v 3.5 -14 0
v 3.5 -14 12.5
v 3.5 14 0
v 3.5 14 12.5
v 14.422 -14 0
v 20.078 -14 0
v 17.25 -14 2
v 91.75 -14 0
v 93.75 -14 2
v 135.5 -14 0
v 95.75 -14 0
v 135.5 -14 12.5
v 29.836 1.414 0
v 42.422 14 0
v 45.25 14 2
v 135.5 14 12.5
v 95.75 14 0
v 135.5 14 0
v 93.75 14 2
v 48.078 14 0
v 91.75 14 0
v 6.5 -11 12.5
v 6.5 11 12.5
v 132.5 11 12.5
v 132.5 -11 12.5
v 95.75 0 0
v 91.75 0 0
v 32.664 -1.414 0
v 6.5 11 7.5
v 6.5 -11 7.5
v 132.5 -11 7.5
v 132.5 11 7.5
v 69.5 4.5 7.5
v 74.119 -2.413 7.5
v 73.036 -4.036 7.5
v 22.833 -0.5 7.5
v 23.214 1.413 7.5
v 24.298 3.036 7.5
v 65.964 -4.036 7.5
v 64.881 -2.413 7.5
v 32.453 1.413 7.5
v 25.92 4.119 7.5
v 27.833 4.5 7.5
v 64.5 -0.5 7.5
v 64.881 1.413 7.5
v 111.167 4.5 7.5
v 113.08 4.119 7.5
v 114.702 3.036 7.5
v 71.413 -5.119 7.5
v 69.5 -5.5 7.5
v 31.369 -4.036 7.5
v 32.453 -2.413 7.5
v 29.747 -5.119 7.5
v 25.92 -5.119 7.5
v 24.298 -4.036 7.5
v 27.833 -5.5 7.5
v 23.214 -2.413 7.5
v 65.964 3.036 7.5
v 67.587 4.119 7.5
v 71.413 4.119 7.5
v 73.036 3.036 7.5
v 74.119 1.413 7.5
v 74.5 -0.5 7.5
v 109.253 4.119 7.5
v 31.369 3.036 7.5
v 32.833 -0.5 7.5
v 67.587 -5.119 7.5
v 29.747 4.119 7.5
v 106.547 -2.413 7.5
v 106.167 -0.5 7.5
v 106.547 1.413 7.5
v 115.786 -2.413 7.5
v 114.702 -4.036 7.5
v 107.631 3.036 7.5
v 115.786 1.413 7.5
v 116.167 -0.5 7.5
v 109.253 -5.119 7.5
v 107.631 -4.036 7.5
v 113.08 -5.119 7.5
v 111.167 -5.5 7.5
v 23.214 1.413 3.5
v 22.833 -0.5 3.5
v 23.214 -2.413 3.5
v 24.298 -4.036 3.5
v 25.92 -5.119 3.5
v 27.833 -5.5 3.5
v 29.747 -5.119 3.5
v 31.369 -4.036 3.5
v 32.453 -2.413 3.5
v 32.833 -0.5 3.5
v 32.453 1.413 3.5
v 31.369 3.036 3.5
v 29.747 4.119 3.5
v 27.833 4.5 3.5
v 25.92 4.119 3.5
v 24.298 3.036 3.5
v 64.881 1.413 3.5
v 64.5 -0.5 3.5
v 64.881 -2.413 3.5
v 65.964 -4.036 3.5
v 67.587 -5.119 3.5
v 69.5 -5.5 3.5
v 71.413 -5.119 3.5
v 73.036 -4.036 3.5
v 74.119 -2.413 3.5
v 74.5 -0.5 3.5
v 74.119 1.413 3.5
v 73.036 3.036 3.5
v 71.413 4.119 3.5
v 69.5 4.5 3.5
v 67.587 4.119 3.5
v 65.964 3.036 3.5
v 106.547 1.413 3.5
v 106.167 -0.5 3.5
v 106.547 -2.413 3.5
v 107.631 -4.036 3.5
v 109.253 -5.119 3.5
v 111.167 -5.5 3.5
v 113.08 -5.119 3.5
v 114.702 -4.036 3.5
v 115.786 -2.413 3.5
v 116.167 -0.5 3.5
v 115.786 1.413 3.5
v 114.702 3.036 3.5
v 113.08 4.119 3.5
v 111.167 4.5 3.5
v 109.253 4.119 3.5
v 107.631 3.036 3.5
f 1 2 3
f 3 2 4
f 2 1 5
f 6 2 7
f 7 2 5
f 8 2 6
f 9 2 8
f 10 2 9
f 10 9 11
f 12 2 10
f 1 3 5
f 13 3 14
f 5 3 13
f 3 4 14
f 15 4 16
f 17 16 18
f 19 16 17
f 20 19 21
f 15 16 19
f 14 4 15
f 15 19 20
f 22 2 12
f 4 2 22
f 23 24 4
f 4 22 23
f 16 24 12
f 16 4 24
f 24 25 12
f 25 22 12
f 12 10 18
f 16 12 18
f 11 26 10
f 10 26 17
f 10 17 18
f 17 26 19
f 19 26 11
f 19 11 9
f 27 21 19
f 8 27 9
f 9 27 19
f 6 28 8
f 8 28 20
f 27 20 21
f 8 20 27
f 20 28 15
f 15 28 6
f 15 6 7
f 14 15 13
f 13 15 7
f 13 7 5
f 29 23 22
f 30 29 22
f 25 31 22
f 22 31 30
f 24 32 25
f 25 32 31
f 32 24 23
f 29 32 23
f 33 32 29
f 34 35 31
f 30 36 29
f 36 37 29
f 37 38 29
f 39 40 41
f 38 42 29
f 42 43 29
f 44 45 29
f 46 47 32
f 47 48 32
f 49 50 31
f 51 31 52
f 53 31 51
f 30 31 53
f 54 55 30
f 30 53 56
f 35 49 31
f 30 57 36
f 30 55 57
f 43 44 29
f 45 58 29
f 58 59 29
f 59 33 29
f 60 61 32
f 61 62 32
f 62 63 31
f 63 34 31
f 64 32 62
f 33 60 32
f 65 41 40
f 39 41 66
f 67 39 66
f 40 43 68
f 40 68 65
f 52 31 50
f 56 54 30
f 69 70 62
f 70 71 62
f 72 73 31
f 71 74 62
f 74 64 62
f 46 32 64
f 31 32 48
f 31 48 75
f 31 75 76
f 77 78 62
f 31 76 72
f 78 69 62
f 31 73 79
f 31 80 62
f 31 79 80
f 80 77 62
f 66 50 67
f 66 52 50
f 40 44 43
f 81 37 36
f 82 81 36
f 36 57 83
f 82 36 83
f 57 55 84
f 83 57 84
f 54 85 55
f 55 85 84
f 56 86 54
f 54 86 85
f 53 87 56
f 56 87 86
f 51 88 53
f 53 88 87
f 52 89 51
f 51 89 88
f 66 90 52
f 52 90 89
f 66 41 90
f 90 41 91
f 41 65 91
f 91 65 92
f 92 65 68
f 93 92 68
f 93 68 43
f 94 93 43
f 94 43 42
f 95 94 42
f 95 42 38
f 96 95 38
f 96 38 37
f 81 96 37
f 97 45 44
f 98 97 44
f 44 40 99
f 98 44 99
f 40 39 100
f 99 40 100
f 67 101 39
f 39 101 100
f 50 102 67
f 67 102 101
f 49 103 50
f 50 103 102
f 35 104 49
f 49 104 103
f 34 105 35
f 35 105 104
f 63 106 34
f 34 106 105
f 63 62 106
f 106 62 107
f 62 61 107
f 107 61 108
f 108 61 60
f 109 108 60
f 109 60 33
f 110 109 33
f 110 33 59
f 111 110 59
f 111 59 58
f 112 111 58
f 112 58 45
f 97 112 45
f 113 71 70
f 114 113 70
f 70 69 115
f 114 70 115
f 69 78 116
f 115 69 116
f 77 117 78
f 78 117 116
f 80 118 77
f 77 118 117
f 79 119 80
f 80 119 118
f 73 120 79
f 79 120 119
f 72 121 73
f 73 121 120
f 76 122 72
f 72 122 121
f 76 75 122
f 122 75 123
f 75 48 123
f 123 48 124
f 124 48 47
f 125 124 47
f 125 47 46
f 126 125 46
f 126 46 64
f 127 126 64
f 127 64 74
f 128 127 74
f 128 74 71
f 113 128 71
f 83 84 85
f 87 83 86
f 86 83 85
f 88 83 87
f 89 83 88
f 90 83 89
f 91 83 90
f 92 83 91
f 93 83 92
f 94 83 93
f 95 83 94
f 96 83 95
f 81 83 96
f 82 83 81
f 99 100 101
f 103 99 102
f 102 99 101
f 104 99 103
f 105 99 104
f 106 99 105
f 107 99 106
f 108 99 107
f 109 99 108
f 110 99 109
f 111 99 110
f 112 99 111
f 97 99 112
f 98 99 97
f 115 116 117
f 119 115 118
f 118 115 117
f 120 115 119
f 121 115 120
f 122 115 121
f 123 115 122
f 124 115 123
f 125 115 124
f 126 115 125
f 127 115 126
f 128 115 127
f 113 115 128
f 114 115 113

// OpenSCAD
jaw_width = 125;
jaw_height = 21;
jaw_depth = 12;
surround_depth = 5;
surround_thickness = 3;
fudge_factor = 0.5;

magnet_diameter = 10;
magnet_depth = 4;
magnet_count = 3;

guide_radius = 2;
guide_angles = [45, 90];
guide_count = 1;

jaw_pattern = 0;
jaw_depth = 6;

mOff = jaw_width/magnet_count;
gOff = jaw_width/len(guide_angles);
jDepth = max(jaw_depth, 
  magnet_depth + 
  (len(guide_angles) > 0 ?  guide_radius : 0) +
  1.5
);

difference() {
  translate([
    surround_thickness + fudge_factor,
    -jaw_height/2-surround_thickness-fudge_factor,
    0])
    difference() {
      cube([
        jaw_width + fudge_factor*2 + surround_thickness*2, 
        jaw_height + fudge_factor*2 + surround_thickness*2, 
        jDepth + surround_depth]);
      translate([surround_thickness, surround_thickness, jDepth]) 
        cube([jaw_width + fudge_factor*2, jaw_height + fudge_factor*2, surround_depth]);
      for (step = [magnet_count-1 : 0]) {
        translate([surround_thickness + fudge_factor + mOff*(step+0.5), jaw_height/2 + surround_thickness, jDepth - magnet_depth])
          #cylinder(r=magnet_diameter/2, h=magnet_depth, center=false);
      }
    }
    for (i = [len(guide_angles)-1:0])
      translate([gOff*(i+0.5),0])
        rotate([0,90,guide_angles[i]])
          #cylinder(r=guide_radius, h=2*jaw_width, center=true, $fn=4);
}
